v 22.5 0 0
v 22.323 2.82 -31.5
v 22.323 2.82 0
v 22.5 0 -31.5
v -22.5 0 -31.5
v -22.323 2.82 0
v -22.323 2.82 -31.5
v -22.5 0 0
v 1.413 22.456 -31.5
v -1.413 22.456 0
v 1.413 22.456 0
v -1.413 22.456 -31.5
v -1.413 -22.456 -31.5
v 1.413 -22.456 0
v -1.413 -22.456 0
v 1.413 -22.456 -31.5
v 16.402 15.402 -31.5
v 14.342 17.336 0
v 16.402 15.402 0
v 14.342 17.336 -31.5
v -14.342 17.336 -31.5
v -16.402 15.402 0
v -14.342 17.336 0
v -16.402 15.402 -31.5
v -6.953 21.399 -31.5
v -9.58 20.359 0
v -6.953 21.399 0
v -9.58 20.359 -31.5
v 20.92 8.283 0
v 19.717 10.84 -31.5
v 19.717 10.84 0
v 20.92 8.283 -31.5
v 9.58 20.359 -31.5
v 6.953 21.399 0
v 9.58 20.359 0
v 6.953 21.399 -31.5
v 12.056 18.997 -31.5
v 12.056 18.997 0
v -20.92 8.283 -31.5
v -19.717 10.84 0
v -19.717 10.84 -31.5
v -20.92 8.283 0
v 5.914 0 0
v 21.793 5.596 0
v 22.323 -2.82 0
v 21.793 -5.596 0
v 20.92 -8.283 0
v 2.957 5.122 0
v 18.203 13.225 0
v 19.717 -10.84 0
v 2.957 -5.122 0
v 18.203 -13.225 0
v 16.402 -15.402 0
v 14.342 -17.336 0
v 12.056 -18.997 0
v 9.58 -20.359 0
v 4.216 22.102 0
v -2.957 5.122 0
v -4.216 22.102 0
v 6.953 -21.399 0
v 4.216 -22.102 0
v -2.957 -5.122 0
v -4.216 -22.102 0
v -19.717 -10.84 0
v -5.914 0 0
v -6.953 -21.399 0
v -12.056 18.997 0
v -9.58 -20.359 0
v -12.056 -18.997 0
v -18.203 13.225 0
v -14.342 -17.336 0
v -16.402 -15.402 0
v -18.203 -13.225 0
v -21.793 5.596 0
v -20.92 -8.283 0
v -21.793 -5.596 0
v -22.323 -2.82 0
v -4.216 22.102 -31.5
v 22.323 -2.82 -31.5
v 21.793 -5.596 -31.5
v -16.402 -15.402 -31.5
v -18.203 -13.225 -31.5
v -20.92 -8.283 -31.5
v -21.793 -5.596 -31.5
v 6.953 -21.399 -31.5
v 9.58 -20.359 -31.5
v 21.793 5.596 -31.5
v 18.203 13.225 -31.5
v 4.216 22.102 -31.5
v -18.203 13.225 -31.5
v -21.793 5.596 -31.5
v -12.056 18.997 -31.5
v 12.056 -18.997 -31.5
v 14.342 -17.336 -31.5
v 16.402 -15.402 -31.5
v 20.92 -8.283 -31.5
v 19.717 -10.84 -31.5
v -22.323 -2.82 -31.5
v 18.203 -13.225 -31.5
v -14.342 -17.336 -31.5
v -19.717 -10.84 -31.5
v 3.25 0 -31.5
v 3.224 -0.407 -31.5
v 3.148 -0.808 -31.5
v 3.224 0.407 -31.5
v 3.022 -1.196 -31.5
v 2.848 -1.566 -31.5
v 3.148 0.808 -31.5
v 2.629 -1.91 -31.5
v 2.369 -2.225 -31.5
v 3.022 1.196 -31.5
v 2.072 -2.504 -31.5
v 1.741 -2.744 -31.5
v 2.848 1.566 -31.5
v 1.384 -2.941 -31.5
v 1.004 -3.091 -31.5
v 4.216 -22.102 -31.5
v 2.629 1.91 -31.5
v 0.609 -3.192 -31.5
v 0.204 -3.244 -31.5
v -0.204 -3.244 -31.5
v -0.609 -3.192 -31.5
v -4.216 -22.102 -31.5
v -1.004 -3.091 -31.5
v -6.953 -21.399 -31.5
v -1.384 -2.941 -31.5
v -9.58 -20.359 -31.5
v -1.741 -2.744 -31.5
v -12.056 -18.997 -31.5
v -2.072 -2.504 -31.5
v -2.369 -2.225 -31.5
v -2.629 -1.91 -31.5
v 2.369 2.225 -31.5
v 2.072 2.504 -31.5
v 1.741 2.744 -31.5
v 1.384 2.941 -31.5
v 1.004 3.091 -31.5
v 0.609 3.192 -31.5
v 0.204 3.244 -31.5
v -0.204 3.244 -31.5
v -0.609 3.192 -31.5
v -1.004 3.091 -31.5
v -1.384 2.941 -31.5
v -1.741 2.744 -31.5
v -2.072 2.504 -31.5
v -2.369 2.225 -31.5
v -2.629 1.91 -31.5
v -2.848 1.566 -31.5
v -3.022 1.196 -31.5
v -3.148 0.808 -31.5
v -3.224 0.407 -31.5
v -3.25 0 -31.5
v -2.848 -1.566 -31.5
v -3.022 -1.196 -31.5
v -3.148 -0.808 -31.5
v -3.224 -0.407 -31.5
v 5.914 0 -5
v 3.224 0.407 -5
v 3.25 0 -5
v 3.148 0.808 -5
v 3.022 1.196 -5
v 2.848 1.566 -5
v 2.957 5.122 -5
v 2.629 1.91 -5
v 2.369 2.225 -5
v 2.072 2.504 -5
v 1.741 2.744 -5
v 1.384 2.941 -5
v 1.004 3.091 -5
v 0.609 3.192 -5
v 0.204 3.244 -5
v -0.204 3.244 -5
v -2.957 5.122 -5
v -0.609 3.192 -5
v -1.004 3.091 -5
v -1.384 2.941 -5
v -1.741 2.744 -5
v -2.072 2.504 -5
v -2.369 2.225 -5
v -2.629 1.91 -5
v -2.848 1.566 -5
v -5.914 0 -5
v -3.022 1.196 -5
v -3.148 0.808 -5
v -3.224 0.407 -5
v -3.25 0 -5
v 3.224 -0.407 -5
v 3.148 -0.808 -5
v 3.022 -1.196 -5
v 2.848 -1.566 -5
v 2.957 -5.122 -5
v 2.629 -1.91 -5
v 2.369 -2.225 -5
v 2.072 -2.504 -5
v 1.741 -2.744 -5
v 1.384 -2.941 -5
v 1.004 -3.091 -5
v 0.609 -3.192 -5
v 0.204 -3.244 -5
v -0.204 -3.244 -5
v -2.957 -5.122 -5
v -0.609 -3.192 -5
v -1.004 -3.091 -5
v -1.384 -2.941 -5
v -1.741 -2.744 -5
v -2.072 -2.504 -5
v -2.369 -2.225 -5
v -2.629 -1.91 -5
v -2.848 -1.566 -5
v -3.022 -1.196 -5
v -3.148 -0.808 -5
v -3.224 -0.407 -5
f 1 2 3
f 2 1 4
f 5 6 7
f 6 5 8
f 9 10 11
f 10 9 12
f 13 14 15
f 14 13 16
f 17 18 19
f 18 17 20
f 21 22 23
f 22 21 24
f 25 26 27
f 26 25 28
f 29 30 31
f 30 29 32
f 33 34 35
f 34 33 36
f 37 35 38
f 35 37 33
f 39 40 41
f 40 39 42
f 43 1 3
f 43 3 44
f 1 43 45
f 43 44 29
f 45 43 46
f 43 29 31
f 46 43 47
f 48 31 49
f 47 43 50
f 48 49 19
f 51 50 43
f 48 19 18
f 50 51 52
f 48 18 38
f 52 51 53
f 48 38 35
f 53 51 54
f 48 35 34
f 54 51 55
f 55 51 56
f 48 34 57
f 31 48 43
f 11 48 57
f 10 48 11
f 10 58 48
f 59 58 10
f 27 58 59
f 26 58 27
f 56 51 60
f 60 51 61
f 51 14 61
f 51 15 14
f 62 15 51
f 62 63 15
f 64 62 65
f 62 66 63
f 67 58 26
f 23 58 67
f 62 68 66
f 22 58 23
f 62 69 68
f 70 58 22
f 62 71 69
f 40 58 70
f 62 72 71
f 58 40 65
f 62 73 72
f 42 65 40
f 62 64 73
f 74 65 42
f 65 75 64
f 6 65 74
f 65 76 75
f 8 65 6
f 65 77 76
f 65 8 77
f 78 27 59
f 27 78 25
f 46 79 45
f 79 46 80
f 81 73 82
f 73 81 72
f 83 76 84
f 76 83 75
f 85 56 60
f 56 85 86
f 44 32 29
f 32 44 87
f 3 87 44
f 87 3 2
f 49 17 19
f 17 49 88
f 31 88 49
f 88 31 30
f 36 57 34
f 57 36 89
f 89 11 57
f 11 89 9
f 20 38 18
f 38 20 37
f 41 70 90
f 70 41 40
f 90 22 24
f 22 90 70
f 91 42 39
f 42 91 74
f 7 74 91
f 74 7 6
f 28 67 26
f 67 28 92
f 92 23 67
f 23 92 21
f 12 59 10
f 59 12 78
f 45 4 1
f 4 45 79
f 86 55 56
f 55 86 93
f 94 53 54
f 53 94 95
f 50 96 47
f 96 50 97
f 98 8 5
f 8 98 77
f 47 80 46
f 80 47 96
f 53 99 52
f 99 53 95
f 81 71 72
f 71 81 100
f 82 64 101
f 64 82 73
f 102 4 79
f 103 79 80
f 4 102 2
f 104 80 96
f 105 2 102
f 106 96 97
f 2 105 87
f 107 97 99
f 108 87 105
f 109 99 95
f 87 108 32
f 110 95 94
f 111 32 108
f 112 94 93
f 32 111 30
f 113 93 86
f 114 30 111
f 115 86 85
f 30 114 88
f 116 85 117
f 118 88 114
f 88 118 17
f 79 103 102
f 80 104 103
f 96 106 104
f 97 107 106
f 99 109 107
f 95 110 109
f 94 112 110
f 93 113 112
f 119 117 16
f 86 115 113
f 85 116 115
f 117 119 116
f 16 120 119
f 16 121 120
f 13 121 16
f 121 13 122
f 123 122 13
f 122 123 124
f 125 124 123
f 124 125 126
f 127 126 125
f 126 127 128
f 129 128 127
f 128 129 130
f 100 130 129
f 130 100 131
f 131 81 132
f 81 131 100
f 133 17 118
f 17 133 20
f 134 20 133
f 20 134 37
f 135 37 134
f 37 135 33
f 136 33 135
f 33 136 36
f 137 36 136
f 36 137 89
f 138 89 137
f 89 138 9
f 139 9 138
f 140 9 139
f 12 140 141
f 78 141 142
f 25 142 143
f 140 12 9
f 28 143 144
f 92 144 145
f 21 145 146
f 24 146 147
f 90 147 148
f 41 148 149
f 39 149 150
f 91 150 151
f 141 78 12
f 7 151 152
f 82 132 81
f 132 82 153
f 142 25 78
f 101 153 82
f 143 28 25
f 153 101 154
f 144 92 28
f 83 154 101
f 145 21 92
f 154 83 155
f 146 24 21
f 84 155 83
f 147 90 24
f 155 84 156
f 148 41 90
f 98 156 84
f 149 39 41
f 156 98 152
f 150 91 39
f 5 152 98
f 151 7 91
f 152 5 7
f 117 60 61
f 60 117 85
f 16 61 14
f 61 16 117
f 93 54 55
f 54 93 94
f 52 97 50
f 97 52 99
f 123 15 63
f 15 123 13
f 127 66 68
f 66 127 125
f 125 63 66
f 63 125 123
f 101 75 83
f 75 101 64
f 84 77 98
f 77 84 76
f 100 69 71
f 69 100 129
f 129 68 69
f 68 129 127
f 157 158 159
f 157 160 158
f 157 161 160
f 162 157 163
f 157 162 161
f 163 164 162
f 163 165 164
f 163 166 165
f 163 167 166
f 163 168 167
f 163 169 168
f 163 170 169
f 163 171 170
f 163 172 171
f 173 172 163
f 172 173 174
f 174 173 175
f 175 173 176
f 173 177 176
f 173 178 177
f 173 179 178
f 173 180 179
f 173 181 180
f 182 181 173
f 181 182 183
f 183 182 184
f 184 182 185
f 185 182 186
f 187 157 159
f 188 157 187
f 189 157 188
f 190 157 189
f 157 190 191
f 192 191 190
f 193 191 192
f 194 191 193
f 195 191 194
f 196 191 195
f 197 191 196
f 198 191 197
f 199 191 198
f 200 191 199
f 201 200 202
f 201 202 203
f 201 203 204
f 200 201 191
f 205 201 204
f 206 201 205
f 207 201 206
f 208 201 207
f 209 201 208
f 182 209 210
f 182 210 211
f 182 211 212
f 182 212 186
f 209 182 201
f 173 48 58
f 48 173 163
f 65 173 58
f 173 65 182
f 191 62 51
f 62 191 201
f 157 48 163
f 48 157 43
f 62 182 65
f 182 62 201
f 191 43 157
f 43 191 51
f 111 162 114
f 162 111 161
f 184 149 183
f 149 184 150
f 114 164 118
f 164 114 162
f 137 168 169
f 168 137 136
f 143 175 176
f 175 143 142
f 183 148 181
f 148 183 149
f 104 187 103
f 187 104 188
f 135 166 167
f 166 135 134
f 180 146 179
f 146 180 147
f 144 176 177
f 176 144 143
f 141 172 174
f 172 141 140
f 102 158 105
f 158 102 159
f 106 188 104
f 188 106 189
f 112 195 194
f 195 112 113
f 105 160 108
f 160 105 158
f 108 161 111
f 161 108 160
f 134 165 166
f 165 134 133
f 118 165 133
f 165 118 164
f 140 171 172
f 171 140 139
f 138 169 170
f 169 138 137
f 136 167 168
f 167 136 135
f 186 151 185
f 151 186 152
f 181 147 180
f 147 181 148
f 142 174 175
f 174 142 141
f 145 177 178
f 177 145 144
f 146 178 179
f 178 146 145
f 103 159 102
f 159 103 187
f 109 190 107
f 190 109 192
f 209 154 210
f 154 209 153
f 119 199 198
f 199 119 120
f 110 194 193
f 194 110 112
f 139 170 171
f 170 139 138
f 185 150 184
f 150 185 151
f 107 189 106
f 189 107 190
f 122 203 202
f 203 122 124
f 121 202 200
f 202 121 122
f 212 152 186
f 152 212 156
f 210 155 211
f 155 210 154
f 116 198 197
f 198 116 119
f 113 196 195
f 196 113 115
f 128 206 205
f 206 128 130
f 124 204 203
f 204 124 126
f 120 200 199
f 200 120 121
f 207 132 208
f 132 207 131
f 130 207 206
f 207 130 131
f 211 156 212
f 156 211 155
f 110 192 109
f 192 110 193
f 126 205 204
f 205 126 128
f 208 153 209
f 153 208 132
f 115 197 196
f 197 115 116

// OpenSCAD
$fn = 50;


difference() {
	union() {
		translate(v = [0, 0, -31.5000000000]) {
			cylinder(h = 31.5000000000, r = 22.5000000000);
		}
	}
	union() {
		translate(v = [0, 0, 0]) {
			rotate(a = [0, 0, 0]) {
				difference() {
					union() {
						translate(v = [0, 0, -5]) {
							linear_extrude(height = 5) {
								polygon(points = [[5.9142500000, 0.0000000000], [2.9571250000, 5.1218907443], [-2.9571250000, 5.1218907443], [-5.9142500000, 0.0000000000], [-2.9571250000, -5.1218907443], [2.9571250000, -5.1218907443]]);
							}
						}
					}
					union();
				}
			}
		}
		#translate(v = [0, 0, -100.0000000000]) {
			cylinder(h = 200, r = 3.2500000000);
		}
	}
}
